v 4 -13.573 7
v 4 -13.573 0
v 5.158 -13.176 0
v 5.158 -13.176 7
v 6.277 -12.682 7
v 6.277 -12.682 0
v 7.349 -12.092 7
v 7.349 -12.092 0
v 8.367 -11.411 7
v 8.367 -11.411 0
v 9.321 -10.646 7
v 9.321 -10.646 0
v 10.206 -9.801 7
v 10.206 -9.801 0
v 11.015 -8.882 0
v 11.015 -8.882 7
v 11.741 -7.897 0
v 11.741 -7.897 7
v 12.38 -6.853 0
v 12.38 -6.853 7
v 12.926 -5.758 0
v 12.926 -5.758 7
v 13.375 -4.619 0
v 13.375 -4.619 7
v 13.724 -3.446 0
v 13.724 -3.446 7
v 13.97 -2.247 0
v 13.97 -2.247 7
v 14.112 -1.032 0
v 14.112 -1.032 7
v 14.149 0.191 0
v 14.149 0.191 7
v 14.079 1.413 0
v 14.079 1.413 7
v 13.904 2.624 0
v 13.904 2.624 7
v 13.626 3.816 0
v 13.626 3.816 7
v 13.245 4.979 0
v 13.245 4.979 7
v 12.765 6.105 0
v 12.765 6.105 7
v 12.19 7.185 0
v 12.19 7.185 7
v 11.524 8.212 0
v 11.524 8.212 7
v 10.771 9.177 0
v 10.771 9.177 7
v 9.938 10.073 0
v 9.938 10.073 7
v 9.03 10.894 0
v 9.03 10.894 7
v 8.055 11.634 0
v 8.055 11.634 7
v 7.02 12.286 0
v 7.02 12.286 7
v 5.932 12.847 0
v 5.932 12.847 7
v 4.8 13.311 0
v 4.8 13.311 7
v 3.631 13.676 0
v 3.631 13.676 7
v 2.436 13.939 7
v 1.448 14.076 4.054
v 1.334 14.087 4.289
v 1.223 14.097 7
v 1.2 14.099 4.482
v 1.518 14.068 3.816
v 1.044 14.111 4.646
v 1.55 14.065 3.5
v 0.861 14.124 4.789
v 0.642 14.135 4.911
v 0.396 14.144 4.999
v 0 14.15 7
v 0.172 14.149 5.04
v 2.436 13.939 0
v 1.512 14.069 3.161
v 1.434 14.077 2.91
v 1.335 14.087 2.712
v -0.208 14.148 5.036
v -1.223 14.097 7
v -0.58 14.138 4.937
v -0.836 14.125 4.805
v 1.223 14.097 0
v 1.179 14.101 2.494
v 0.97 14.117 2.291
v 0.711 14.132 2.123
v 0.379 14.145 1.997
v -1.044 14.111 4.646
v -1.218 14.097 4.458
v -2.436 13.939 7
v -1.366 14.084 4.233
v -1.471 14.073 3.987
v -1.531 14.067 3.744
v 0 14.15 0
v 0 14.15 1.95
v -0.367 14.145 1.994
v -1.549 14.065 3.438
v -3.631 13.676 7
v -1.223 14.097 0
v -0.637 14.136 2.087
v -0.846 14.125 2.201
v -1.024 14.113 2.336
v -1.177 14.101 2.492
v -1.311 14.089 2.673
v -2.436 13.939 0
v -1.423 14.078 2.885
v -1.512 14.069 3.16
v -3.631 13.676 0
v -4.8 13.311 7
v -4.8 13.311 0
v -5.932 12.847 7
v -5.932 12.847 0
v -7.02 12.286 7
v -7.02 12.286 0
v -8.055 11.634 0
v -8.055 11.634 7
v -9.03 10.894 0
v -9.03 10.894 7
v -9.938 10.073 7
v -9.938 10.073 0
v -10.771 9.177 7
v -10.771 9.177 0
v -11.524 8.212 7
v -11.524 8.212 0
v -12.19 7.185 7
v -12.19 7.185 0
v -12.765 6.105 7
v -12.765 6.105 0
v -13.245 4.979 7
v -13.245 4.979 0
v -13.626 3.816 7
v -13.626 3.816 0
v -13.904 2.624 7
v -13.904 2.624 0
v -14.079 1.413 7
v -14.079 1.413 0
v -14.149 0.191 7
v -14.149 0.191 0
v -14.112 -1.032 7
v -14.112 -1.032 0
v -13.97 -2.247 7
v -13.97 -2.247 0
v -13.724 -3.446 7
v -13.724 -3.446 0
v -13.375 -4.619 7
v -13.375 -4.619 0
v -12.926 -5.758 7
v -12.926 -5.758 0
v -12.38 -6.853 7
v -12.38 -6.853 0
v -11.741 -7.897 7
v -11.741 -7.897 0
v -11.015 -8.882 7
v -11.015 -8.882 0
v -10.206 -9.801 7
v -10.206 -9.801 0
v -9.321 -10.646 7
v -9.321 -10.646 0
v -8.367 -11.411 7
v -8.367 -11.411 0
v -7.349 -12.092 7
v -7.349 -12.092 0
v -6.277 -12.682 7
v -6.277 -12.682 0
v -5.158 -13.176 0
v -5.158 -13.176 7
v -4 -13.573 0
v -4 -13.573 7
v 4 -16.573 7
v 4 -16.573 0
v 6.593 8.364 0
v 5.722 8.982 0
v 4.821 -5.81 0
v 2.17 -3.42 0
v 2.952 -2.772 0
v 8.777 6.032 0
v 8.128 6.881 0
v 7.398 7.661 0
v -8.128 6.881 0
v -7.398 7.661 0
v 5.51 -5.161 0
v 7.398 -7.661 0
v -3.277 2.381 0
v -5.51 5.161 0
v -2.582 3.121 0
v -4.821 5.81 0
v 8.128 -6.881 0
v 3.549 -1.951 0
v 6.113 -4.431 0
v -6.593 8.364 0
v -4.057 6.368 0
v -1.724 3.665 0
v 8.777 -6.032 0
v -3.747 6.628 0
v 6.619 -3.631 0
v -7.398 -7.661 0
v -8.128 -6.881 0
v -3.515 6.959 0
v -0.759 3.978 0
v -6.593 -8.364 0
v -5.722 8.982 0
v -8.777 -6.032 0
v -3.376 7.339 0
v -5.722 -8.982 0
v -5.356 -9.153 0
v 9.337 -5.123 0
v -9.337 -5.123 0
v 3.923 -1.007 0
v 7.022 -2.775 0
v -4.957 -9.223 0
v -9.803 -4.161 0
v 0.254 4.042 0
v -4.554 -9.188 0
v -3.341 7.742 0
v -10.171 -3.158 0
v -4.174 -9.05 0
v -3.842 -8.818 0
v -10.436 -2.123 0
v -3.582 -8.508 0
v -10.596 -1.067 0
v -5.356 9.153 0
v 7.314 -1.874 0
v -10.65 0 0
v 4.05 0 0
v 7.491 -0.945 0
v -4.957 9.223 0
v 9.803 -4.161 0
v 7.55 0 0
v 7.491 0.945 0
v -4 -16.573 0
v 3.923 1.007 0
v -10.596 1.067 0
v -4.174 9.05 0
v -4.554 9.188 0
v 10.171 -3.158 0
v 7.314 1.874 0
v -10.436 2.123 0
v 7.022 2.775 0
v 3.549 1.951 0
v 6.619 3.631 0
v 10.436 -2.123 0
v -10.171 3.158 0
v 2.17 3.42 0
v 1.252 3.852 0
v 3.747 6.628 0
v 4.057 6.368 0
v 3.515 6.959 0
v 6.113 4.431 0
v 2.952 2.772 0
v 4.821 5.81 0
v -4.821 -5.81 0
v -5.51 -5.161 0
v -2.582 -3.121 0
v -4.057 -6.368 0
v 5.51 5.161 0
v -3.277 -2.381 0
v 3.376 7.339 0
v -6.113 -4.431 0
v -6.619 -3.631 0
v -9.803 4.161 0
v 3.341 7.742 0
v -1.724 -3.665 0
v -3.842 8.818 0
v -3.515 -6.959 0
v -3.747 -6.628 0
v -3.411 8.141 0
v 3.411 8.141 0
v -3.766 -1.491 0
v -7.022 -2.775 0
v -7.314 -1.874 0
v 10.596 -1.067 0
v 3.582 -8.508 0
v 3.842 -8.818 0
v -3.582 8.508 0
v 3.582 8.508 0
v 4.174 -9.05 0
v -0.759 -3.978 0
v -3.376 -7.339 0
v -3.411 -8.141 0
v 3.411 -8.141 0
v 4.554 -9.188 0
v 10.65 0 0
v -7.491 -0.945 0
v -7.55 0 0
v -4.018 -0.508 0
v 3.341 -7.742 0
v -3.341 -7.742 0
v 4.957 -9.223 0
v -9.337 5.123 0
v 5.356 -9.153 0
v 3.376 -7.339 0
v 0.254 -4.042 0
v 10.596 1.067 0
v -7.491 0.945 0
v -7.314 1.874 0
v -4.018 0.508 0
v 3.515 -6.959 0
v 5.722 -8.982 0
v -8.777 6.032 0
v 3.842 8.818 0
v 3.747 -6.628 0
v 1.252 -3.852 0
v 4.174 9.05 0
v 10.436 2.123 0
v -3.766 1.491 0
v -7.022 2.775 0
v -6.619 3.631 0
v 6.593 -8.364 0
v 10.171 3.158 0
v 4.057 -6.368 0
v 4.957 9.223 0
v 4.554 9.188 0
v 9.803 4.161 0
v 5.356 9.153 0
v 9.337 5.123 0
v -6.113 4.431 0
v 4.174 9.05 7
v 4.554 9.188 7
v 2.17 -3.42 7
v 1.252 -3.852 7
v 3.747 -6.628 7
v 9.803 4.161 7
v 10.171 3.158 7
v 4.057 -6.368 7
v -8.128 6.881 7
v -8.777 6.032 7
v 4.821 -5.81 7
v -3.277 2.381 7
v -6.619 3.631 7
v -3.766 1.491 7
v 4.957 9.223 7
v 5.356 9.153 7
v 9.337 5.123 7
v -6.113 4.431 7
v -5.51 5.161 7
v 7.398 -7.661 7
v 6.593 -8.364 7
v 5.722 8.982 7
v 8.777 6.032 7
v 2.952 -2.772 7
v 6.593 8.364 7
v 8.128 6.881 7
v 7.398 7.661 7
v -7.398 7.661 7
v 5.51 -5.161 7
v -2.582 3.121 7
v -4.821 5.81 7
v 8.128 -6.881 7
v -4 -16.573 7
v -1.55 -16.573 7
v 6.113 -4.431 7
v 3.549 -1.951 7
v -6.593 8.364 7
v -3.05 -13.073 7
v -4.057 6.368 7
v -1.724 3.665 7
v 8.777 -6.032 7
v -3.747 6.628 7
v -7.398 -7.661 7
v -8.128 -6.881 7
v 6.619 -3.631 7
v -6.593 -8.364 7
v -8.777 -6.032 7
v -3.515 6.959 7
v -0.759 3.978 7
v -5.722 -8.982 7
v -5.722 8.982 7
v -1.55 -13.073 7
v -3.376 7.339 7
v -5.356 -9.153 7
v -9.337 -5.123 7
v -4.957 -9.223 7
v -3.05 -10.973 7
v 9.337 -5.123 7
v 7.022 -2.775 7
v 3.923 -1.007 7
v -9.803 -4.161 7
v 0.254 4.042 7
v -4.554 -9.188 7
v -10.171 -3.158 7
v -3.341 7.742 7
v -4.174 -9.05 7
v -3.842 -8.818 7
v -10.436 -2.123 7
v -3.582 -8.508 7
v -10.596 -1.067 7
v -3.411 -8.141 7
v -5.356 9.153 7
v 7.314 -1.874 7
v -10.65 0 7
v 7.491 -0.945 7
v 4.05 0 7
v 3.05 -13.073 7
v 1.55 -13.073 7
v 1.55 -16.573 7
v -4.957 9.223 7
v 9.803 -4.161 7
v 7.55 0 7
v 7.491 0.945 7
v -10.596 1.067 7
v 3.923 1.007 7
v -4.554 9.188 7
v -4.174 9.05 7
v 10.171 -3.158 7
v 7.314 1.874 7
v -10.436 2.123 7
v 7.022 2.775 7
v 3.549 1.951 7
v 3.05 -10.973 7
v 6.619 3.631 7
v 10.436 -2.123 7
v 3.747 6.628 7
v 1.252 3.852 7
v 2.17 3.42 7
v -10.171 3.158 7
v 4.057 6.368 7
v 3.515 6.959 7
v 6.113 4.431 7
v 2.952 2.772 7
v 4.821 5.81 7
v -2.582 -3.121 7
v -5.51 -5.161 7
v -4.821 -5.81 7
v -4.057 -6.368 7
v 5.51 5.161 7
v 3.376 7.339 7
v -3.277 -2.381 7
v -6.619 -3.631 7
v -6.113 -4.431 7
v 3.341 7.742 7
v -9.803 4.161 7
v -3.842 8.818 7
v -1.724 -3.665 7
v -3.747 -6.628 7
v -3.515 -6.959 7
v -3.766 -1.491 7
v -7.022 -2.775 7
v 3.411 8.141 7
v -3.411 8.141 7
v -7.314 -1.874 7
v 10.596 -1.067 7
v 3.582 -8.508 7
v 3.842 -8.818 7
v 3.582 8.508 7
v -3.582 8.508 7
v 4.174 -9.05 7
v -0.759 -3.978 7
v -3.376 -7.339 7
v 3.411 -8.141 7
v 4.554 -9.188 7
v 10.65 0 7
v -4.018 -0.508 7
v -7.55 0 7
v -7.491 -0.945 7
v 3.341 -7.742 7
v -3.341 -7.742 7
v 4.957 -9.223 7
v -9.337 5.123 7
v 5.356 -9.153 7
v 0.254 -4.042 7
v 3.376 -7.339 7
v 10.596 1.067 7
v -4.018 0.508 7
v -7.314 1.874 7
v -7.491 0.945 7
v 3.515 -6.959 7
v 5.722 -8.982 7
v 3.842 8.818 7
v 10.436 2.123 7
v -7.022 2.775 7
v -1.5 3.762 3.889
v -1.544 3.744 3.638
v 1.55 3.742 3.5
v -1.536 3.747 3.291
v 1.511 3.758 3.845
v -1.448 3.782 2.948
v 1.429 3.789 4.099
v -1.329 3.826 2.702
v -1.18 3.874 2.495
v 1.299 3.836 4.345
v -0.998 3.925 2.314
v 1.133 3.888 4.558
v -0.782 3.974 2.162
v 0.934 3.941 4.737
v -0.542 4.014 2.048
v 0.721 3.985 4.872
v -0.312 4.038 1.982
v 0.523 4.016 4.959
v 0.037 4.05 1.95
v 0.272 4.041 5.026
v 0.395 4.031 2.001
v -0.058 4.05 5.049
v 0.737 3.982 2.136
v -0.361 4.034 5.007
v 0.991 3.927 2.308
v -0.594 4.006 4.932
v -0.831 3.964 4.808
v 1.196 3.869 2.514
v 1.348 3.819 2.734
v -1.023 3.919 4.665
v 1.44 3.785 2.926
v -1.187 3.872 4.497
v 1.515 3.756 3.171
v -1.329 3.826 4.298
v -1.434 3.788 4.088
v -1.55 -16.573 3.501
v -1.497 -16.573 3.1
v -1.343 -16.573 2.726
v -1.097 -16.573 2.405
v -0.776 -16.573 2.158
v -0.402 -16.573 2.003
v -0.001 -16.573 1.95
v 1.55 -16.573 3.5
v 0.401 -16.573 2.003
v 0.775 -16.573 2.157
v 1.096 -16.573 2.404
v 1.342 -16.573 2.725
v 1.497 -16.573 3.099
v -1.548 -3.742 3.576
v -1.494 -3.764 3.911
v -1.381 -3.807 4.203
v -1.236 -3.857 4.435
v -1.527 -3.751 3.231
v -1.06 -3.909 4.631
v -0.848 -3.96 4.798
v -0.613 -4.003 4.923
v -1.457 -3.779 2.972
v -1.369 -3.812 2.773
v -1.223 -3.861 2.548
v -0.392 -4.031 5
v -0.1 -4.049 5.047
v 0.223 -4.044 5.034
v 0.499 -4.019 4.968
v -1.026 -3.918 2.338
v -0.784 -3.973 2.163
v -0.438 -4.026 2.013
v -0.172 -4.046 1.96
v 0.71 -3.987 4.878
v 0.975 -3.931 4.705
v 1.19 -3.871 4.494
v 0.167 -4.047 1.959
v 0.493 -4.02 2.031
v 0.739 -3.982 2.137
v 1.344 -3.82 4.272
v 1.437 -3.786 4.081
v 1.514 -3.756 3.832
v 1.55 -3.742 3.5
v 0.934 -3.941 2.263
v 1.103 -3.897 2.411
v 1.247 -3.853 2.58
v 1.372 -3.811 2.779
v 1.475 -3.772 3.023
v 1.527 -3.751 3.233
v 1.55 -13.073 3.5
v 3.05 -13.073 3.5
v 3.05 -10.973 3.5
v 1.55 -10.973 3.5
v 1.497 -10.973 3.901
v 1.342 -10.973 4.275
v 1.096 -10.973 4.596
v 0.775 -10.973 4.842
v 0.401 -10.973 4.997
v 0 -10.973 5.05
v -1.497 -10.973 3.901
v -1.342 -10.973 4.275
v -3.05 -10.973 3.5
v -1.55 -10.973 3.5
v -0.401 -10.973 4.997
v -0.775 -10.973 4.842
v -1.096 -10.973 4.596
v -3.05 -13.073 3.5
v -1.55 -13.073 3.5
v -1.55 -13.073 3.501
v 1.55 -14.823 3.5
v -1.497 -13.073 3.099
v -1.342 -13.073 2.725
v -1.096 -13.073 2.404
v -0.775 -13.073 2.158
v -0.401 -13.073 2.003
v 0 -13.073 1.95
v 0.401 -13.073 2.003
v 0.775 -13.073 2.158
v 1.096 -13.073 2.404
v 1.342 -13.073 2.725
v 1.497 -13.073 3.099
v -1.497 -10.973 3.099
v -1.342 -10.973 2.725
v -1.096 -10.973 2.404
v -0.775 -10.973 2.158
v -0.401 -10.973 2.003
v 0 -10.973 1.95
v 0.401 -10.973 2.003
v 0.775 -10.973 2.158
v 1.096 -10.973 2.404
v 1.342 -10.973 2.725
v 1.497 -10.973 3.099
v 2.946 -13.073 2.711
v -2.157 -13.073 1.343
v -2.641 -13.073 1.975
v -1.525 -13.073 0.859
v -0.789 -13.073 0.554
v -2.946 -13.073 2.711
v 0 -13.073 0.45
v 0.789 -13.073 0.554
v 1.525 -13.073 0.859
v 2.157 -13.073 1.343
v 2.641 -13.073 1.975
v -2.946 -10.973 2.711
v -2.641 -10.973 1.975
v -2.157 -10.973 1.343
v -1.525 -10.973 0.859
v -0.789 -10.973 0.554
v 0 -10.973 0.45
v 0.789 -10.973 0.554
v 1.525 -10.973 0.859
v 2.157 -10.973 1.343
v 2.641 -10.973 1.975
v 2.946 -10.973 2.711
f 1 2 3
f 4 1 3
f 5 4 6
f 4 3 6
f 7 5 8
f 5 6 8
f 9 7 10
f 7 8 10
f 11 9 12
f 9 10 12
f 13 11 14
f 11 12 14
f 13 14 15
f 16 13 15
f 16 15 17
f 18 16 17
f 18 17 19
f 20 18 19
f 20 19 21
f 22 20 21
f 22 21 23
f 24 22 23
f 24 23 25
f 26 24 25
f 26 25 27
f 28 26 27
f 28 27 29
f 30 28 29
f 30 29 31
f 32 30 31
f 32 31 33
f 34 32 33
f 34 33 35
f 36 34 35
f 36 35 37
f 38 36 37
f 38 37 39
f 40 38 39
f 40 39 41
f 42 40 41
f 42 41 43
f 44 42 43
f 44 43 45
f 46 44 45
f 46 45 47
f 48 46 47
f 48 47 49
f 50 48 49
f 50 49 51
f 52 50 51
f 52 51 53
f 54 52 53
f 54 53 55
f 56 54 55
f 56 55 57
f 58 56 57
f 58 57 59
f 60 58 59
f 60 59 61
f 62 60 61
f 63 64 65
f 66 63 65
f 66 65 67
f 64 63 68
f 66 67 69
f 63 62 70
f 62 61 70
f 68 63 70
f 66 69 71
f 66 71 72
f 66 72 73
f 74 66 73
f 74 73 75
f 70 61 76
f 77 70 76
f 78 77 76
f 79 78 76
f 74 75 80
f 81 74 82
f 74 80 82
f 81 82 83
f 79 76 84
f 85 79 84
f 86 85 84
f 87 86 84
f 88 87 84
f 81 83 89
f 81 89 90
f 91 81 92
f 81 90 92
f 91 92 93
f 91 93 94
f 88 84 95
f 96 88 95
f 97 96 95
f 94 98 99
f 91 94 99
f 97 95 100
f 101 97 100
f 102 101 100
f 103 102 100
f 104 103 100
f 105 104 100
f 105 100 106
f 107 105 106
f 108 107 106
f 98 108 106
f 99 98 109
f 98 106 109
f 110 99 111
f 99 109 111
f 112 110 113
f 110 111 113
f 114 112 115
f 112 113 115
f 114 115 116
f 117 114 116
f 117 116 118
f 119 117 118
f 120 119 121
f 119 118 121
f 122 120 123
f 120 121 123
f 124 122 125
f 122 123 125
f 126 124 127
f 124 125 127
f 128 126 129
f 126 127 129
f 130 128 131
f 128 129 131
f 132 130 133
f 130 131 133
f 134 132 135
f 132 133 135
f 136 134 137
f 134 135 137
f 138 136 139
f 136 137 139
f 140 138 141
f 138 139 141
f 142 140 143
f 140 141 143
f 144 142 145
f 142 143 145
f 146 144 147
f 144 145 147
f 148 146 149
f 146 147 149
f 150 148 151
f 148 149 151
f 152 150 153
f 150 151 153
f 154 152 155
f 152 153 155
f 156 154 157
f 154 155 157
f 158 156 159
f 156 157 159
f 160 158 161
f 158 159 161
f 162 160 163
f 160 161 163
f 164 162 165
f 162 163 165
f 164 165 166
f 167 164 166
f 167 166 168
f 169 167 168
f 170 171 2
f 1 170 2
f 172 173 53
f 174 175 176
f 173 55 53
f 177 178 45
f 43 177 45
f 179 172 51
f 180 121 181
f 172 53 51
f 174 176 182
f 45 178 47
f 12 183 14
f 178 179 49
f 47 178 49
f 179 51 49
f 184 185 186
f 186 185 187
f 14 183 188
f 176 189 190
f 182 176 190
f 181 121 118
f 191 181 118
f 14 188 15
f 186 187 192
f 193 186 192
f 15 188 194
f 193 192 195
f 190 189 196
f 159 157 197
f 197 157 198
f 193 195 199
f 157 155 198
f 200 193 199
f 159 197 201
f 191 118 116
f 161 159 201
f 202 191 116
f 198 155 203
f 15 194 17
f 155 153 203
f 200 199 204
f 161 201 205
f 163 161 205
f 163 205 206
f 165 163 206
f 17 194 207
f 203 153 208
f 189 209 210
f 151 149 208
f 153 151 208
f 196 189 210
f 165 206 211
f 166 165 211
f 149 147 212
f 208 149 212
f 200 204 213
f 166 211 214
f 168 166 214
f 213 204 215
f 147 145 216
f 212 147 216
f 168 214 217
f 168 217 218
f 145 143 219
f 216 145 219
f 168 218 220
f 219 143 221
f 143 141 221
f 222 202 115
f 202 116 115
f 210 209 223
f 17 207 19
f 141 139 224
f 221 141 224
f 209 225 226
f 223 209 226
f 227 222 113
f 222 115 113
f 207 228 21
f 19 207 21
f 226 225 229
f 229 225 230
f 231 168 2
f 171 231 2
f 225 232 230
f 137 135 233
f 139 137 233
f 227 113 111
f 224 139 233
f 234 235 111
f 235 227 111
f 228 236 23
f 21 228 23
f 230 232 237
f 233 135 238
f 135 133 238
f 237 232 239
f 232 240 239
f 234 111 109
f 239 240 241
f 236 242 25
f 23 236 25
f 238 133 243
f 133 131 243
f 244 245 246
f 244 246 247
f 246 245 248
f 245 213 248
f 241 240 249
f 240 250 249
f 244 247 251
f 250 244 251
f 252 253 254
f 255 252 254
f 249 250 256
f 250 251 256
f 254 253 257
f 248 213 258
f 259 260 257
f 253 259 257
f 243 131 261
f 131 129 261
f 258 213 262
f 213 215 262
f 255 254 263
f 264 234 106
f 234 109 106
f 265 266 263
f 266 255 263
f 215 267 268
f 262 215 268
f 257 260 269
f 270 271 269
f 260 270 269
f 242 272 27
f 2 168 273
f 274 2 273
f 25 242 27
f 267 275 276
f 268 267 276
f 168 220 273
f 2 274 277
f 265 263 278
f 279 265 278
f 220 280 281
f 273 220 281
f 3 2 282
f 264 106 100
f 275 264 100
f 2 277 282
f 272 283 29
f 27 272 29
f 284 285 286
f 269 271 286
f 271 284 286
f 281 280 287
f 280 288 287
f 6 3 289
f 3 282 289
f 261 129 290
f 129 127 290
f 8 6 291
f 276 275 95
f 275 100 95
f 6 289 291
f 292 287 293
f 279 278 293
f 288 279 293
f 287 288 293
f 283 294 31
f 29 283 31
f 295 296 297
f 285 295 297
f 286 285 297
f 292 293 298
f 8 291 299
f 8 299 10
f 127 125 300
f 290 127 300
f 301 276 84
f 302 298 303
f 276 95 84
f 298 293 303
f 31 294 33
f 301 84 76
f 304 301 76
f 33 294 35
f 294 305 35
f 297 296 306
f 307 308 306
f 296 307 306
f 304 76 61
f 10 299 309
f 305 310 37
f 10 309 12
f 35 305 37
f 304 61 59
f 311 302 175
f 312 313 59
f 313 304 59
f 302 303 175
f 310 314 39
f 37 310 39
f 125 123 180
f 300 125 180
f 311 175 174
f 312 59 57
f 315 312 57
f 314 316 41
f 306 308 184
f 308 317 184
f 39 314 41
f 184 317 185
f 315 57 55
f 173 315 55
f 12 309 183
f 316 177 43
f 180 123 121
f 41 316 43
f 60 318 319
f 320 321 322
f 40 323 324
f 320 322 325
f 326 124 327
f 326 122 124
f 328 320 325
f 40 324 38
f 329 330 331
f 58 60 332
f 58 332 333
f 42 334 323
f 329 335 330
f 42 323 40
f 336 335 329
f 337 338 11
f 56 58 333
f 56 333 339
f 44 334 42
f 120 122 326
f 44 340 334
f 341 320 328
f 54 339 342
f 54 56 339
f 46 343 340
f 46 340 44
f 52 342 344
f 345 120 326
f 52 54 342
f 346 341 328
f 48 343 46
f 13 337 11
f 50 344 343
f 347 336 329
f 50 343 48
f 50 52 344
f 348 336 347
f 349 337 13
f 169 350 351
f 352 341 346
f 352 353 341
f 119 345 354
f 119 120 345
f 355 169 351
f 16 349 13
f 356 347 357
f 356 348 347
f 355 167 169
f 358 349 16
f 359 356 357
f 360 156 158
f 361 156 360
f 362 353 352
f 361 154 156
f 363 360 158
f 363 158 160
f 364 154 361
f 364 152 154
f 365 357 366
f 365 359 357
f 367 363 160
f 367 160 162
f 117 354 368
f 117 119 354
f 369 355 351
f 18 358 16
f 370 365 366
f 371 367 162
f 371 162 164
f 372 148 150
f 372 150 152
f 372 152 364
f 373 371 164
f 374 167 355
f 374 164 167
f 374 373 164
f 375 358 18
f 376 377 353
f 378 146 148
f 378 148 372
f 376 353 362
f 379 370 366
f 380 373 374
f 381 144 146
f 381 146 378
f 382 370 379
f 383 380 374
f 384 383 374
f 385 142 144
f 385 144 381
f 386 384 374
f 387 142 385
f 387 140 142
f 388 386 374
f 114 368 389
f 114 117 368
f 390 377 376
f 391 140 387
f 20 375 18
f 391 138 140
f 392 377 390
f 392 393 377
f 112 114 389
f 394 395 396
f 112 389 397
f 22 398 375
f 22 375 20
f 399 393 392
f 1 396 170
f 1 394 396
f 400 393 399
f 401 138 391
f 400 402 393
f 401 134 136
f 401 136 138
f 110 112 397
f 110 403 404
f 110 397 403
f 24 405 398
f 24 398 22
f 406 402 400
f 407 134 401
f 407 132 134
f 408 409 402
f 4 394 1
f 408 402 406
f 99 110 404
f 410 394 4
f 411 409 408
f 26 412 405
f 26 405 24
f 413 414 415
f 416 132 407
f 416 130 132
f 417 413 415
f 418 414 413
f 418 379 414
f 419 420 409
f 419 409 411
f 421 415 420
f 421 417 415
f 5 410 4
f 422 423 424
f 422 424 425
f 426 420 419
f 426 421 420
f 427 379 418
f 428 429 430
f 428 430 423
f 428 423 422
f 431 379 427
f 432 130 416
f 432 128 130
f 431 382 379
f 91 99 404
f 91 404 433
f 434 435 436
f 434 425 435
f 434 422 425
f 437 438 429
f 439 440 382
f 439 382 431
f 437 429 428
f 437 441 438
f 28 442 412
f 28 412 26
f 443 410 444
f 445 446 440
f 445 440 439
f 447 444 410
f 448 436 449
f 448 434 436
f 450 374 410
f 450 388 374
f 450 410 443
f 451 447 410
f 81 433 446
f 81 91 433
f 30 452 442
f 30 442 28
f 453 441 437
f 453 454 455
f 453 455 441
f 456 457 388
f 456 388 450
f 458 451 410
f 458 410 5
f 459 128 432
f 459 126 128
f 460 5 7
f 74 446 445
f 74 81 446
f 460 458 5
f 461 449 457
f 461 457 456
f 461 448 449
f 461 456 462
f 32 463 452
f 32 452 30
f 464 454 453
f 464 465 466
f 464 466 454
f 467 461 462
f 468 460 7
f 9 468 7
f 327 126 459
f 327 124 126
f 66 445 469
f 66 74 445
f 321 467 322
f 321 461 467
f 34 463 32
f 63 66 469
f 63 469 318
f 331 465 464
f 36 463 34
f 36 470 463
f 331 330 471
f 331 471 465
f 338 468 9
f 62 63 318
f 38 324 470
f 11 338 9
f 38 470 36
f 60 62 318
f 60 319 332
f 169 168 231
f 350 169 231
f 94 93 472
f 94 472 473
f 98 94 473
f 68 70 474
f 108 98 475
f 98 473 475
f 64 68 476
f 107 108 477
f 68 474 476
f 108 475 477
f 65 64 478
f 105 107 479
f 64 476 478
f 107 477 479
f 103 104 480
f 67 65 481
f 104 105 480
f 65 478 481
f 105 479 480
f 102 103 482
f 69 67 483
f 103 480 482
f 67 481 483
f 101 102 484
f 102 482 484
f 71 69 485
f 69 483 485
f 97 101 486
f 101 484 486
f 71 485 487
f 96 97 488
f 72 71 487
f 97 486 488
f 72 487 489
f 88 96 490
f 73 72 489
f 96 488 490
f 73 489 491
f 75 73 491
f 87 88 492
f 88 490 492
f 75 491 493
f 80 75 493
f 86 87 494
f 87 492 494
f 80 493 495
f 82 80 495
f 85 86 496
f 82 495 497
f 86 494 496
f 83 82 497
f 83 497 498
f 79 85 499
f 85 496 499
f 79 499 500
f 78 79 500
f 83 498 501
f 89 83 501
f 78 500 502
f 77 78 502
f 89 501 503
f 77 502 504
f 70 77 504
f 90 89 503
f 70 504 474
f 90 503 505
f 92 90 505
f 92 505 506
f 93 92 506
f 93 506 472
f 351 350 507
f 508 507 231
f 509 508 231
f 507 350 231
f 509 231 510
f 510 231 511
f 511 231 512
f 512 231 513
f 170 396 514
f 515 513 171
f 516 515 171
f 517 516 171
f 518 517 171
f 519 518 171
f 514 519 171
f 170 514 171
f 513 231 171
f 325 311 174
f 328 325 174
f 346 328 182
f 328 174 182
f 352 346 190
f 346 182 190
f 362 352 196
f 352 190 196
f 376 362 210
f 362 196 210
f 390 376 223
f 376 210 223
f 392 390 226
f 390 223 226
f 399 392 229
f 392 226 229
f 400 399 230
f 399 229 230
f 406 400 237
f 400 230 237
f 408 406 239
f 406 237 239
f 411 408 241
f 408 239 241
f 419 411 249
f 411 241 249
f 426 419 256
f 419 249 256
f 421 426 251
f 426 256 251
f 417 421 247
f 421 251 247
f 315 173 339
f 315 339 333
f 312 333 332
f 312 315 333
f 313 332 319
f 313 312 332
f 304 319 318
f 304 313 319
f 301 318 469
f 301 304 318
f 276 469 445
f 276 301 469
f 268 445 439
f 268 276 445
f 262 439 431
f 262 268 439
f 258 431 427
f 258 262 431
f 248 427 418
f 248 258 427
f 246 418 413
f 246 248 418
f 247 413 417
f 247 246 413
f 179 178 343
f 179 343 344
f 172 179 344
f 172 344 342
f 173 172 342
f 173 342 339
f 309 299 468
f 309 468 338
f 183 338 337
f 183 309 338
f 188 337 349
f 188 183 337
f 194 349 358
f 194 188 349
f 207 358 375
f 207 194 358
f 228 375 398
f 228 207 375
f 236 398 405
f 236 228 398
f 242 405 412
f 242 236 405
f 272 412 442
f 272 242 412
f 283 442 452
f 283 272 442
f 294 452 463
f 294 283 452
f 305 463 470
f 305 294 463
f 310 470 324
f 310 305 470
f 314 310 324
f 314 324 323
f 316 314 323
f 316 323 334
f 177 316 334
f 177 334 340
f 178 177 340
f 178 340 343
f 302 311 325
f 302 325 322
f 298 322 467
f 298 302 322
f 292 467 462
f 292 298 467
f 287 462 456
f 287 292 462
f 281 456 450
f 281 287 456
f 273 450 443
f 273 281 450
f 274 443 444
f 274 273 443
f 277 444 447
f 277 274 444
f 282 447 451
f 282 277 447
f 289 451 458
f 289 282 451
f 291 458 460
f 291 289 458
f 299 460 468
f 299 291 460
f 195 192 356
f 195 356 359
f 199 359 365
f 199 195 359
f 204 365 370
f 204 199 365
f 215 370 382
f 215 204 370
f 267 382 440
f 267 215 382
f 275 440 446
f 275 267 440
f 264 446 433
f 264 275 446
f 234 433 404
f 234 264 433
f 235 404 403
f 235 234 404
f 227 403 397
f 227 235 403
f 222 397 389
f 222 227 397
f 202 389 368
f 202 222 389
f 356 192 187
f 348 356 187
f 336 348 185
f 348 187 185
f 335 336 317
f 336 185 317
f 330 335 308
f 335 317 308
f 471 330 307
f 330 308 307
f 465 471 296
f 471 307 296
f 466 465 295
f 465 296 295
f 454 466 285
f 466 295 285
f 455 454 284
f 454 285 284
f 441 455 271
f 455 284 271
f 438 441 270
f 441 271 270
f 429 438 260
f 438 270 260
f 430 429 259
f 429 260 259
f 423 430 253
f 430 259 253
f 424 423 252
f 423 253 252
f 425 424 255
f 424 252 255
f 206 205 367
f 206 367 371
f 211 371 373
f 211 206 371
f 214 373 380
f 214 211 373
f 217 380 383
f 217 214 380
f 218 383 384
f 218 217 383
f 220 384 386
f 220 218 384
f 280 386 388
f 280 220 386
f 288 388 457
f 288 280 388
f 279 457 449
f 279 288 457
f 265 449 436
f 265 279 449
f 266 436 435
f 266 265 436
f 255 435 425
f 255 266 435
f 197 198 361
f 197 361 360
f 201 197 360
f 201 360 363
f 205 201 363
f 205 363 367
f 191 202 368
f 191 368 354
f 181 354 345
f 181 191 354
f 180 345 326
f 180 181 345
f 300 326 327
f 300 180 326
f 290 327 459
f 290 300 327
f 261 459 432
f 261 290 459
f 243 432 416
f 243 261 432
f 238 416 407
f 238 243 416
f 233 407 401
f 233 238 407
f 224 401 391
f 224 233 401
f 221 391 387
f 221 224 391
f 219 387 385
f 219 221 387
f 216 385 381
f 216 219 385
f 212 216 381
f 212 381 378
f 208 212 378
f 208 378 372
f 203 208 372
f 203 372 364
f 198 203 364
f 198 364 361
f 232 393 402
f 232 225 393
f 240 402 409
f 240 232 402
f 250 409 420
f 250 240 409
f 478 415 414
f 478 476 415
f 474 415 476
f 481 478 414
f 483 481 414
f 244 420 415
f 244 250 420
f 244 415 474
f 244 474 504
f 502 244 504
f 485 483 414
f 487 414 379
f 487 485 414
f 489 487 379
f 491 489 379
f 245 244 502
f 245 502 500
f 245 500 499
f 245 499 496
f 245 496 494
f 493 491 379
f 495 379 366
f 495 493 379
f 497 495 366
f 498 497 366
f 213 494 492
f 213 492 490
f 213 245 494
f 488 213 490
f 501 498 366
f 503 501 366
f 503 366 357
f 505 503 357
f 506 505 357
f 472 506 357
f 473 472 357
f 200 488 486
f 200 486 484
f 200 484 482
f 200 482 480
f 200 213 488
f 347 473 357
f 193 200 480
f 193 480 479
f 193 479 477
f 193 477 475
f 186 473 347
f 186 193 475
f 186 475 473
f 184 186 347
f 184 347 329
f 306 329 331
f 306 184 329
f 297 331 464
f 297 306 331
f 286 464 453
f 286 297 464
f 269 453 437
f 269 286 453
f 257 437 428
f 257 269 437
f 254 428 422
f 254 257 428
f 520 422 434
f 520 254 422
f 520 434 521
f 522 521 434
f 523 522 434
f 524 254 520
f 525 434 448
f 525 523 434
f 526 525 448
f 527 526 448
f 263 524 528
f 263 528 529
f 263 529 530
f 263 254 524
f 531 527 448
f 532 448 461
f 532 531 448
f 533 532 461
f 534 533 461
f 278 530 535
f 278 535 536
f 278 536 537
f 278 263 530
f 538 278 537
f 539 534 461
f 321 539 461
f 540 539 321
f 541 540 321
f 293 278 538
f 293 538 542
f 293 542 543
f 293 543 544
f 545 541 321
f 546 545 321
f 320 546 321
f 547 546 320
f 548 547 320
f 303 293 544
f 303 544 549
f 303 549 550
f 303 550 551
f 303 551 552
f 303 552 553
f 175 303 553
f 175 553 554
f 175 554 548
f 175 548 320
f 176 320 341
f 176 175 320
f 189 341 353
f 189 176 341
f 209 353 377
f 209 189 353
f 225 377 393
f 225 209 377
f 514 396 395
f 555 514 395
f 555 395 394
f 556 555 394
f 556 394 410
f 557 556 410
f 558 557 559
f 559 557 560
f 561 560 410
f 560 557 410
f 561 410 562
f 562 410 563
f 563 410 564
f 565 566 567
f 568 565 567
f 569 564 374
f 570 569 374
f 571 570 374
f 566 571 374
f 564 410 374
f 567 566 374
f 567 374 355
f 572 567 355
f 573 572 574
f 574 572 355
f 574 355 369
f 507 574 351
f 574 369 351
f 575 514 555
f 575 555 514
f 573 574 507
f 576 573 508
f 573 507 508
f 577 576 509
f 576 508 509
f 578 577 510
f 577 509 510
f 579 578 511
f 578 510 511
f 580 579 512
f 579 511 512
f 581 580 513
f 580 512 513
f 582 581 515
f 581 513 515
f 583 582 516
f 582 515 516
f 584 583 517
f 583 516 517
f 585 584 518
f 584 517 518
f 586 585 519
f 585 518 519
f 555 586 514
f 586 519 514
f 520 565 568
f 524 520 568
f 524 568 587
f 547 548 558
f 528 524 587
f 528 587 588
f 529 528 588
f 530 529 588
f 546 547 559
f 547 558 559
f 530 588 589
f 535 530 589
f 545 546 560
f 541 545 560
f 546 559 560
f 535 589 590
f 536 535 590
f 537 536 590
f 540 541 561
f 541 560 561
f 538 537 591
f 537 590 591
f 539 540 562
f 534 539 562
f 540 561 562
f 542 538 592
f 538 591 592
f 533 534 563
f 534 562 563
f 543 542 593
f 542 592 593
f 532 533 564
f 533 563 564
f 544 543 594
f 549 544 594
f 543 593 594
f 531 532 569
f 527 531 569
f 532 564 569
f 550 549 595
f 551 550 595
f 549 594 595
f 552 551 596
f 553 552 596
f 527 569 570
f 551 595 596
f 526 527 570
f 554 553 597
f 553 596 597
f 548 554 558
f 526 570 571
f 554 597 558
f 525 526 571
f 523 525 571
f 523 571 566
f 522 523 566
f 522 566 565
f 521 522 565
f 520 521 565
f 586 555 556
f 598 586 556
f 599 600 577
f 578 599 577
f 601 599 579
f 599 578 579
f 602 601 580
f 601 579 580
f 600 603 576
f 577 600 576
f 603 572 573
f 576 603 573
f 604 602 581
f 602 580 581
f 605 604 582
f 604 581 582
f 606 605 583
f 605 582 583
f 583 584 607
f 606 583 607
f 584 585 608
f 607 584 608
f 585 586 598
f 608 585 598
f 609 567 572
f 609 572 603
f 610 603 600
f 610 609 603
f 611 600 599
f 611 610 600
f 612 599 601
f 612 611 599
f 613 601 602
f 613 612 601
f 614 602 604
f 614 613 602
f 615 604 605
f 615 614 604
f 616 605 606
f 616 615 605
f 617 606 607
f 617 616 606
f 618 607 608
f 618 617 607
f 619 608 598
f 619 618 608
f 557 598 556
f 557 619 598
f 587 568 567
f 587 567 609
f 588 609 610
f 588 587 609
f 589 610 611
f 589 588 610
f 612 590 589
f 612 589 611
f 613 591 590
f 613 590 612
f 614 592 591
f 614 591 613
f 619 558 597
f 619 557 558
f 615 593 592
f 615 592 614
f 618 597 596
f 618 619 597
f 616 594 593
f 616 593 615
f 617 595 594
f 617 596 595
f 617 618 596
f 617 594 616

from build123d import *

# Parameters (mm, degrees)
SKETCH_R        = 4.05
EXTRUDE_DEPTH   = 7
SKETCH001_R     = 1.55
POCKET_DEPTH    = 30.723859
POCKET001_DEPTH = 3.5
POCKET002_DEPTH = 2.1


with BuildPart() as part:
    # Sketch → Extrude (new body)
    with BuildSketch(Plane.XY):
        with BuildLine():
            ThreePointArc((4, -13.572859), (0, 14.15), (-4, -13.572859))
            Line((-4, -13.572859), (-4, -16.572859))
            Line((-4, -16.572859), (4, -16.572859))
            Line((4, -16.572859), (4, -13.572859))
        make_face()
        Circle(SKETCH_R, mode=Mode.SUBTRACT)
        with BuildLine():
            ThreePointArc((-4.056612, 6.367605), (-7.55, 0), (-4.056612, -6.367605))
            ThreePointArc((-5.722241, -8.982119), (-3.58217, -8.507677), (-4.056612, -6.367605))
            ThreePointArc((-5.722241, 8.982119), (-10.65, 0), (-5.722241, -8.982119))
            ThreePointArc((-4.056612, 6.367605), (-3.58217, 8.507677), (-5.722241, 8.982119))
        make_face(mode=Mode.SUBTRACT)
        with BuildLine():
            ThreePointArc((4.056612, -6.367605), (7.55, 0), (4.056612, 6.367605))
            ThreePointArc((5.722241, 8.982119), (3.58217, 8.507677), (4.056612, 6.367605))
            ThreePointArc((5.722241, -8.982119), (10.65, 0), (5.722241, 8.982119))
            ThreePointArc((4.056612, -6.367605), (3.58217, -8.507677), (5.722241, -8.982119))
        make_face(mode=Mode.SUBTRACT)
    extrude(amount=EXTRUDE_DEPTH)

    # Sketch001 → Pocket (cut, through all)
    with BuildSketch(Plane.XZ.offset(16.572859)):
        with Locations((0, 3.5)):
            Circle(SKETCH001_R)
    extrude(amount=-POCKET_DEPTH, mode=Mode.SUBTRACT)

    # Sketch002 → Pocket001 (cut)
    with BuildSketch(Plane.XY.offset(7)):
        Polygon((-3.049999, -10.972859), (-3.049999, -13.072859), (-1.549999, -13.072859), (-1.549999, -16.572859), (1.550001, -16.572859), (1.550001, -13.072859), (3.050001, -13.072859), (3.050001, -10.972859), align=None)
    extrude(amount=-POCKET001_DEPTH, mode=Mode.SUBTRACT)

    # Sketch003 → Pocket002 (cut)
    with BuildSketch(Plane.XZ.offset(10.972859)):
        with BuildLine():
            ThreePointArc((-3.050001, 3.5), (0, 0.449999), (3.050001, 3.5))
            Line((-3.050001, 3.5), (3.050001, 3.5))
        make_face()
    extrude(amount=POCKET002_DEPTH, mode=Mode.SUBTRACT)


solid = part.part
